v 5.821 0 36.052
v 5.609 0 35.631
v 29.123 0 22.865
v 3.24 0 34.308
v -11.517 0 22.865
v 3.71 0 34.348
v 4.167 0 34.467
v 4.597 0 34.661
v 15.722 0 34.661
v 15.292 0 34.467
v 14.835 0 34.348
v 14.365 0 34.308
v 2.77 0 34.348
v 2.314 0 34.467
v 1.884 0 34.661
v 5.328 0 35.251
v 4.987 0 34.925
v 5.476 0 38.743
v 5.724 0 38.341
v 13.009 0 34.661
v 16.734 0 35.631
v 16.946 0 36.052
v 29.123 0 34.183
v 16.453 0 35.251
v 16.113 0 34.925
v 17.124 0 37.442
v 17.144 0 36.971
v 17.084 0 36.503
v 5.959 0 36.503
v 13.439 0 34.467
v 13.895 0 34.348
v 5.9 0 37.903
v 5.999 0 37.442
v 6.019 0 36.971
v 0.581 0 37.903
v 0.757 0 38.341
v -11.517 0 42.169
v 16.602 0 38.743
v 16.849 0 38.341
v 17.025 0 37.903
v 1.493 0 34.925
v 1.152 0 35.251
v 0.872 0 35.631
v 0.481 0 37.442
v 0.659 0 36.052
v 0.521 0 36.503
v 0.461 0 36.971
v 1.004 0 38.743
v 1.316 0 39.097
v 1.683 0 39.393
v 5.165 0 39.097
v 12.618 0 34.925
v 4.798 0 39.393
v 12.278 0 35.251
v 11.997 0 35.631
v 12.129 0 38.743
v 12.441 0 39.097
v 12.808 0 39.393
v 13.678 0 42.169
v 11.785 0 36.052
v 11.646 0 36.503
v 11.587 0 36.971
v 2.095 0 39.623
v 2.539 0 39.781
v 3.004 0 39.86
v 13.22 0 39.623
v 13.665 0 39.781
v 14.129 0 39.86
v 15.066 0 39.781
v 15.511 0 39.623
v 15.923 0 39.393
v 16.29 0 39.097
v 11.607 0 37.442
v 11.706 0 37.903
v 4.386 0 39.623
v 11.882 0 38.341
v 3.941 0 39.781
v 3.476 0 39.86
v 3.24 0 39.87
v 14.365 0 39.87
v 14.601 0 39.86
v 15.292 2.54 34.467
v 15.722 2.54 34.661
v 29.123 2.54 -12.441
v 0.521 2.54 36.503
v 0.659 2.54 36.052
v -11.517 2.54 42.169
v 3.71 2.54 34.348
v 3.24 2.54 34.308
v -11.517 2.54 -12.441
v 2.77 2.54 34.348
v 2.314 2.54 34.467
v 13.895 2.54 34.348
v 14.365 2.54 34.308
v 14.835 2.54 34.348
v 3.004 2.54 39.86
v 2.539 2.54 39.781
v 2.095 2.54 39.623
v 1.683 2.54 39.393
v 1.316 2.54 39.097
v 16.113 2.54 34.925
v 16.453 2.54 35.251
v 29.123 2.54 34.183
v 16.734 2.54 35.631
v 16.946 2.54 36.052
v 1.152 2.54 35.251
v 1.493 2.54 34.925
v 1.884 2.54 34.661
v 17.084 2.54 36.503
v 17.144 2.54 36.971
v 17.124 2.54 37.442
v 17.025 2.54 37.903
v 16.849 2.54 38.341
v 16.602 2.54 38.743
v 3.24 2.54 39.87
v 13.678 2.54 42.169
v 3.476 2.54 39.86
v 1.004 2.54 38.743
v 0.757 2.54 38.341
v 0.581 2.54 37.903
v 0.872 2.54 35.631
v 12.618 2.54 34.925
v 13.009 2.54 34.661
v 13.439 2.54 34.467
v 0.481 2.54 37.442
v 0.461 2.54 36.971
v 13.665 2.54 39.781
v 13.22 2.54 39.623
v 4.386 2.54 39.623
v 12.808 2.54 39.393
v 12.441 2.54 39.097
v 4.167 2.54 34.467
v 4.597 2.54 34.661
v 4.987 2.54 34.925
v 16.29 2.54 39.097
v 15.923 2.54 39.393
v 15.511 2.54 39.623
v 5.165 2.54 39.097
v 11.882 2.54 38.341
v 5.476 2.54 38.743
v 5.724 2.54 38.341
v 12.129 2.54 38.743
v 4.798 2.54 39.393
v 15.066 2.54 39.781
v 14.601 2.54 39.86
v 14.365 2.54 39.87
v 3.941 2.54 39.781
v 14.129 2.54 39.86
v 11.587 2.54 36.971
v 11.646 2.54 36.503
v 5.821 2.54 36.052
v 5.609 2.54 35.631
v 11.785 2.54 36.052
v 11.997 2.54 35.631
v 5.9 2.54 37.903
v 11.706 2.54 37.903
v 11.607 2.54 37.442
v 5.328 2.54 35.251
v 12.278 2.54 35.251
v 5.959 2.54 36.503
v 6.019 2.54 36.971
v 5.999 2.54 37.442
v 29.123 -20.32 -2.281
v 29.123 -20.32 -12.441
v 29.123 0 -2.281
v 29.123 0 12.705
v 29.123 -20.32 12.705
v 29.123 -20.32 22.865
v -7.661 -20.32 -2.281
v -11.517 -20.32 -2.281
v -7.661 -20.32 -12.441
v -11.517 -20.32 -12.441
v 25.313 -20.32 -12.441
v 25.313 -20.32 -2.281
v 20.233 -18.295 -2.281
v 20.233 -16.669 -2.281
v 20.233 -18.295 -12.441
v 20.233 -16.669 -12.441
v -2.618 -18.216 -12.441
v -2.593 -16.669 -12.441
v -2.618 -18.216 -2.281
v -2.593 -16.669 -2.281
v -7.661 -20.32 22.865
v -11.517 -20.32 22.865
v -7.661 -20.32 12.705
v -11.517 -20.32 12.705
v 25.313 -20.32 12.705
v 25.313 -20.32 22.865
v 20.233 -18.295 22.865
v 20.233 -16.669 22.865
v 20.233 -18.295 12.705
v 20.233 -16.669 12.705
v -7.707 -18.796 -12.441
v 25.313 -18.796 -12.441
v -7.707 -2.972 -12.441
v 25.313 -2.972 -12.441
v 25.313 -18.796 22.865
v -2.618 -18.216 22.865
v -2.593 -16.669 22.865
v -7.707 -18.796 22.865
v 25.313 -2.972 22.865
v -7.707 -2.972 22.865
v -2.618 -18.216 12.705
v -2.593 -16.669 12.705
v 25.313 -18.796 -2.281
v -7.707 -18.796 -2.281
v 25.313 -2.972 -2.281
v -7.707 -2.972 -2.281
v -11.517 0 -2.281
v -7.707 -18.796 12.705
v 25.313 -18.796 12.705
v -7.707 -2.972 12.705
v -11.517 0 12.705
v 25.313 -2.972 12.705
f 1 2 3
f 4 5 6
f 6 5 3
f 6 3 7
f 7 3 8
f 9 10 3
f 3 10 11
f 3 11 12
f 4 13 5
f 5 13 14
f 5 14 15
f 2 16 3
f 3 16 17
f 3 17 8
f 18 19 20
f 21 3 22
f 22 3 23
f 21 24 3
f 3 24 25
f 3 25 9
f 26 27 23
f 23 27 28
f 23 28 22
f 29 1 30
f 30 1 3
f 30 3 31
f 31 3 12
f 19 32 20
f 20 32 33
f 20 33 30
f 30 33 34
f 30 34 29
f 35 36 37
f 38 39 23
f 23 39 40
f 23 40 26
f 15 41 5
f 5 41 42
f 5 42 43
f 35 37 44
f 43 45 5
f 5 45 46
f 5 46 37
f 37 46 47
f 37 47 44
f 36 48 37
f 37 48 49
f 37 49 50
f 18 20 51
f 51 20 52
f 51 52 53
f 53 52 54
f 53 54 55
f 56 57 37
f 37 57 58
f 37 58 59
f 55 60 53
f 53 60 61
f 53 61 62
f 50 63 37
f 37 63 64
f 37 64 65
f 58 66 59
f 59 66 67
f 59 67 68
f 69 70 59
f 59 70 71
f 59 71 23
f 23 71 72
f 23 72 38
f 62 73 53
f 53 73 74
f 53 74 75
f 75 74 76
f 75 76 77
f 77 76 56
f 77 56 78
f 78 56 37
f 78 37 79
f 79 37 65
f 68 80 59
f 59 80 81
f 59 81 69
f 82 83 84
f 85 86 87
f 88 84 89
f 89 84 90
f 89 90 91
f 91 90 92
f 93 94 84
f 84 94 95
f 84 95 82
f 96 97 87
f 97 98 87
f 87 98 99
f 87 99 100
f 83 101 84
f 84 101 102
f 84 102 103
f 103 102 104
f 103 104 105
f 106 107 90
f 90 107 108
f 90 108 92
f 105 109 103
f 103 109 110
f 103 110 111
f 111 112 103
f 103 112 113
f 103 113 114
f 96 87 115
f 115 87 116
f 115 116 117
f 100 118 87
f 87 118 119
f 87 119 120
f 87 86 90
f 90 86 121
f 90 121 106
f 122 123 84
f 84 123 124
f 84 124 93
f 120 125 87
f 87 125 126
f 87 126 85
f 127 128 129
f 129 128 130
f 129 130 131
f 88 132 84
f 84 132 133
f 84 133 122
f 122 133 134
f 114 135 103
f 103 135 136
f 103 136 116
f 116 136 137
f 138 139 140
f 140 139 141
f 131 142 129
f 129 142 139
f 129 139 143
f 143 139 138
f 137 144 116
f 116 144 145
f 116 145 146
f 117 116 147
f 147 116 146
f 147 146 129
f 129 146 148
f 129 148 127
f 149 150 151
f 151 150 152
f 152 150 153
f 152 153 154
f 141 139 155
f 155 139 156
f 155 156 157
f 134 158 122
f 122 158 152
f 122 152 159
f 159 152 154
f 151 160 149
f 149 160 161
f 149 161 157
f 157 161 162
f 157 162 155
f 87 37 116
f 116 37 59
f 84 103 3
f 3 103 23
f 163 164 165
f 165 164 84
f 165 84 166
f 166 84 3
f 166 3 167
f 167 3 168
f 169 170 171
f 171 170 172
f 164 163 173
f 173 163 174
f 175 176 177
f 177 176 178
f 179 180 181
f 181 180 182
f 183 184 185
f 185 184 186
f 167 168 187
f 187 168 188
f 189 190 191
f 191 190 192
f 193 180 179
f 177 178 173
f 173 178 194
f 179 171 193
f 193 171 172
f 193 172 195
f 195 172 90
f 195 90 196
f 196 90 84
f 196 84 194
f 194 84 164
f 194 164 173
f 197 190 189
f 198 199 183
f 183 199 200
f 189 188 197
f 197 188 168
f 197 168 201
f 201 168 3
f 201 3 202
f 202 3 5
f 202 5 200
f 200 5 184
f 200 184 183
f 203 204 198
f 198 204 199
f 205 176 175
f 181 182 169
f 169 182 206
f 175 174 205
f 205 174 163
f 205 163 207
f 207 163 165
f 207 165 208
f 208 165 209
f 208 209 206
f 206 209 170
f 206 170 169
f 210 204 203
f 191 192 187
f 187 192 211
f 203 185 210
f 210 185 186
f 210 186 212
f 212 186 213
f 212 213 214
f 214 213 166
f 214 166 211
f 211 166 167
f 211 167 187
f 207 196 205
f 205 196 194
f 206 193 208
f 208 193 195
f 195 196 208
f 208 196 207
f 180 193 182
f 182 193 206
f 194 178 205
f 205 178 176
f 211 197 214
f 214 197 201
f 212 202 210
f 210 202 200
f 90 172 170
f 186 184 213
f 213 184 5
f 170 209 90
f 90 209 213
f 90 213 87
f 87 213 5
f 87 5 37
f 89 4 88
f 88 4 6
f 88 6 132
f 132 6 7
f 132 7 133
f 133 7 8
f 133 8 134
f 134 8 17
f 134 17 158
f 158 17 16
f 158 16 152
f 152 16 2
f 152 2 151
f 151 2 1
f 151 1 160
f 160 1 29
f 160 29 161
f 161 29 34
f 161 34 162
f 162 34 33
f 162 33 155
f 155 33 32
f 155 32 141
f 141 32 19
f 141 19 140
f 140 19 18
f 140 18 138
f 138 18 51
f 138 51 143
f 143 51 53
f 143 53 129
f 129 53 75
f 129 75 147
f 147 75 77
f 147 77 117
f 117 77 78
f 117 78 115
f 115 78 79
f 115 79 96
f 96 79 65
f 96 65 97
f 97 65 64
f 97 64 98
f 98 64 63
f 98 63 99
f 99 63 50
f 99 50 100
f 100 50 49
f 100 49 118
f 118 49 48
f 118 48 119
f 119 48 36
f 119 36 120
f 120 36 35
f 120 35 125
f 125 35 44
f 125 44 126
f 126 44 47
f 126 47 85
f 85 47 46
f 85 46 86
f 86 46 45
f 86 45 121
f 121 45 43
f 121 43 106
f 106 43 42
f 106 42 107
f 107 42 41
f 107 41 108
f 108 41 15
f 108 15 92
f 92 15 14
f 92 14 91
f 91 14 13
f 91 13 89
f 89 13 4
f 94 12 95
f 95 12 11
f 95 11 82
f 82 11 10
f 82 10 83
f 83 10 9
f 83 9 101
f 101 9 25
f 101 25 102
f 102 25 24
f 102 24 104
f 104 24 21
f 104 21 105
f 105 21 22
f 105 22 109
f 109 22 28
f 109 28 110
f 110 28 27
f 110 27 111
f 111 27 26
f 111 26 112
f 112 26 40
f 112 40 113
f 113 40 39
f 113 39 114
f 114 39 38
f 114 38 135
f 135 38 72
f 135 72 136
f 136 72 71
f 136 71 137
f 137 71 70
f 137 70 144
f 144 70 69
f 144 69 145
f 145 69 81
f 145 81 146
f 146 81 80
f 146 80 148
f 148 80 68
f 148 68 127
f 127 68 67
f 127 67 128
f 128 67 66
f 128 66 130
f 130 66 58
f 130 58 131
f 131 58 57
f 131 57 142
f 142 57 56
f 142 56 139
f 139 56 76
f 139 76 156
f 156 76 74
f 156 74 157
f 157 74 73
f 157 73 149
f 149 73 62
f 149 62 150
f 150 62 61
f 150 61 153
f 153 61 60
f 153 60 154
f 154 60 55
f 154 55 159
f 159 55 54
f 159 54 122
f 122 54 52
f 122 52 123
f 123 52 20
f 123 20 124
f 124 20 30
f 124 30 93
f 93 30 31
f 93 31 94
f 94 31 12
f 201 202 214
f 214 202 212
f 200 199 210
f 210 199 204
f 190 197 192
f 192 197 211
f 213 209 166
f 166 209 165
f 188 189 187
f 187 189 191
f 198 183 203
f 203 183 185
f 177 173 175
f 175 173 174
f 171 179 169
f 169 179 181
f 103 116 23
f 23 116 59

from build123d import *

# Parameters (mm, degrees)
SKETCH3_R           = 2.7813
BOSS_EXTRUDE3_DEPTH = 2.54
SKETCH4_W           = 3.81
SKETCH4_H           = 40.386
BOSS_EXTRUDE4_DEPTH = 20.32
SKETCH5_W           = 40.386
SKETCH5_H           = 1.524
BOSS_EXTRUDE5_DEPTH = 5.08
SKETCH6_W           = 40.386
SKETCH6_H           = 1.524
BOSS_EXTRUDE6_DEPTH = 5.08
SKETCH7_W           = 40.64
SKETCH7_H           = 20.32
CUT_EXTRUDE1_DEPTH  = 5.08
SKETCH11_W          = 40.64
SKETCH11_H          = 35.306
BOSS_EXTRUDE7_DEPTH = 2.9718
BOSS_EXTRUDE8_DEPTH = 35.306
SKETCH8_W           = 14.986
SKETCH8_H           = 20.32
CUT_EXTRUDE2_DEPTH  = 41.64
CUT_EXTRUDE3_DEPTH  = 36.306
SKETCH14_R          = 3.81
SKETCH14_R_2        = 2.7813
BOSS_EXTRUDE9_DEPTH = 2.54
CUT_EXTRUDE4_DEPTH  = 23.86


with BuildPart() as part:
    # Sketch3 → Boss-Extrude3 (new body)
    with BuildSketch(Plane(origin=(0, 0, 0), x_dir=(1, 0, 0), z_dir=(0, 1, 0))):
        Polygon((-11.517251908, 12.440983784), (29.122748092, 12.440983784), (29.122748092, -34.564151764), (29.122748092, -42.169016216), (18.885256114, -42.169016216), (-11.517251908, -42.169016216), align=None)
        with Locations((3.240148092, -37.089016216)):
            Circle(SKETCH3_R, mode=Mode.SUBTRACT)
        with Locations((14.365348092, -37.089016216)):
            Circle(SKETCH3_R, mode=Mode.SUBTRACT)
    extrude(amount=BOSS_EXTRUDE3_DEPTH)

    # Sketch4 → Boss-Extrude4 (add)
    with BuildSketch(Plane.XZ):
        with Locations((-9.612251908, 7.752016216)):
            Rectangle(SKETCH4_W, SKETCH4_H)
        with Locations((27.217748092, 7.752016216)):
            Rectangle(SKETCH4_W, SKETCH4_H)
    extrude(amount=BOSS_EXTRUDE4_DEPTH)

    # Sketch5 → Boss-Extrude5 (add)
    with BuildSketch(Plane(origin=(-7.707251908, 0, 0), x_dir=(0, 0, -1), z_dir=(1, 0, 0))):
        with Locations((-7.752016216, -19.558)):
            Rectangle(SKETCH5_W, SKETCH5_H)
    extrude(amount=BOSS_EXTRUDE5_DEPTH)

    # Sketch6 → Boss-Extrude6 (add)
    with BuildSketch(Plane.ZY.offset(-25.312748092)):
        with Locations((7.752016216, -19.558)):
            Rectangle(SKETCH6_W, SKETCH6_H)
    extrude(amount=BOSS_EXTRUDE6_DEPTH)

    # Sketch7 → Cut-Extrude1 (cut)
    with BuildSketch(Plane.XY.offset(27.945016216)):
        with Locations((8.802748092, -10.16)):
            Rectangle(SKETCH7_W, SKETCH7_H)
    extrude(amount=-CUT_EXTRUDE1_DEPTH, mode=Mode.SUBTRACT)

    # Sketch11 → Boss-Extrude7 (add)
    with BuildSketch(Plane.XZ):
        with Locations((8.802748092, 5.212016216)):
            Rectangle(SKETCH11_W, SKETCH11_H)
    extrude(amount=BOSS_EXTRUDE7_DEPTH)

    # Sketch12 → Boss-Extrude8 (add)
    with BuildSketch(Plane.XY.offset(22.865016216)):
        Polygon((-7.707251908, -18.796), (-2.593407451, -16.66881978), (-2.627251908, -18.796), align=None)
        Polygon((20.232748092, -18.796), (20.232748092, -16.66881978), (25.312748092, -18.796), align=None)
    extrude(amount=-BOSS_EXTRUDE8_DEPTH)

    # Sketch8 → Cut-Extrude2 (cut, through all)
    with BuildSketch(Plane(origin=(29.122748092, 0, 0), x_dir=(0, 0, -1), z_dir=(1, 0, 0))):
        with Locations((-5.212016216, -10.16)):
            Rectangle(SKETCH8_W, SKETCH8_H)
    extrude(amount=-CUT_EXTRUDE2_DEPTH, mode=Mode.SUBTRACT)

    # Sketch13 → Cut-Extrude3 (cut, through all)
    with BuildSketch(Plane.XY.offset(22.865016216)):
        Polygon((-2.618031664, -18.216492377), (-7.660745747, -20.32), (-2.627251908, -20.32), (-2.627251908, -18.796), align=None)
        Polygon((20.232748092, -18.294602636), (20.232748092, -20.32), (25.312748092, -20.32), align=None)
    extrude(amount=-CUT_EXTRUDE3_DEPTH, mode=Mode.SUBTRACT)

    # Sketch14 → Boss-Extrude9 (add)
    with BuildSketch(Plane.XZ):
        with Locations((3.240148092, 37.089016216)):
            Circle(SKETCH14_R)
        with Locations((3.240148092, 37.089016216)):
            Circle(SKETCH14_R_2, mode=Mode.SUBTRACT)
        with Locations((14.365348092, 37.089016216)):
            Circle(SKETCH14_R)
        with Locations((14.365348092, 37.089016216)):
            Circle(SKETCH14_R_2, mode=Mode.SUBTRACT)
    extrude(amount=-BOSS_EXTRUDE9_DEPTH)

    # Sketch15 → Cut-Extrude4 (cut, through all)
    with BuildSketch(Plane(origin=(0, 2.54, 0), x_dir=(1, 0, 0), z_dir=(0, 1, 0))):
        Polygon((18.885256114, -39.476616216), (13.678256114, -42.169016216), (29.122748092, -42.169016216), (29.122748092, -34.183083779), align=None)
    extrude(amount=-CUT_EXTRUDE4_DEPTH, mode=Mode.SUBTRACT)


solid = part.part
